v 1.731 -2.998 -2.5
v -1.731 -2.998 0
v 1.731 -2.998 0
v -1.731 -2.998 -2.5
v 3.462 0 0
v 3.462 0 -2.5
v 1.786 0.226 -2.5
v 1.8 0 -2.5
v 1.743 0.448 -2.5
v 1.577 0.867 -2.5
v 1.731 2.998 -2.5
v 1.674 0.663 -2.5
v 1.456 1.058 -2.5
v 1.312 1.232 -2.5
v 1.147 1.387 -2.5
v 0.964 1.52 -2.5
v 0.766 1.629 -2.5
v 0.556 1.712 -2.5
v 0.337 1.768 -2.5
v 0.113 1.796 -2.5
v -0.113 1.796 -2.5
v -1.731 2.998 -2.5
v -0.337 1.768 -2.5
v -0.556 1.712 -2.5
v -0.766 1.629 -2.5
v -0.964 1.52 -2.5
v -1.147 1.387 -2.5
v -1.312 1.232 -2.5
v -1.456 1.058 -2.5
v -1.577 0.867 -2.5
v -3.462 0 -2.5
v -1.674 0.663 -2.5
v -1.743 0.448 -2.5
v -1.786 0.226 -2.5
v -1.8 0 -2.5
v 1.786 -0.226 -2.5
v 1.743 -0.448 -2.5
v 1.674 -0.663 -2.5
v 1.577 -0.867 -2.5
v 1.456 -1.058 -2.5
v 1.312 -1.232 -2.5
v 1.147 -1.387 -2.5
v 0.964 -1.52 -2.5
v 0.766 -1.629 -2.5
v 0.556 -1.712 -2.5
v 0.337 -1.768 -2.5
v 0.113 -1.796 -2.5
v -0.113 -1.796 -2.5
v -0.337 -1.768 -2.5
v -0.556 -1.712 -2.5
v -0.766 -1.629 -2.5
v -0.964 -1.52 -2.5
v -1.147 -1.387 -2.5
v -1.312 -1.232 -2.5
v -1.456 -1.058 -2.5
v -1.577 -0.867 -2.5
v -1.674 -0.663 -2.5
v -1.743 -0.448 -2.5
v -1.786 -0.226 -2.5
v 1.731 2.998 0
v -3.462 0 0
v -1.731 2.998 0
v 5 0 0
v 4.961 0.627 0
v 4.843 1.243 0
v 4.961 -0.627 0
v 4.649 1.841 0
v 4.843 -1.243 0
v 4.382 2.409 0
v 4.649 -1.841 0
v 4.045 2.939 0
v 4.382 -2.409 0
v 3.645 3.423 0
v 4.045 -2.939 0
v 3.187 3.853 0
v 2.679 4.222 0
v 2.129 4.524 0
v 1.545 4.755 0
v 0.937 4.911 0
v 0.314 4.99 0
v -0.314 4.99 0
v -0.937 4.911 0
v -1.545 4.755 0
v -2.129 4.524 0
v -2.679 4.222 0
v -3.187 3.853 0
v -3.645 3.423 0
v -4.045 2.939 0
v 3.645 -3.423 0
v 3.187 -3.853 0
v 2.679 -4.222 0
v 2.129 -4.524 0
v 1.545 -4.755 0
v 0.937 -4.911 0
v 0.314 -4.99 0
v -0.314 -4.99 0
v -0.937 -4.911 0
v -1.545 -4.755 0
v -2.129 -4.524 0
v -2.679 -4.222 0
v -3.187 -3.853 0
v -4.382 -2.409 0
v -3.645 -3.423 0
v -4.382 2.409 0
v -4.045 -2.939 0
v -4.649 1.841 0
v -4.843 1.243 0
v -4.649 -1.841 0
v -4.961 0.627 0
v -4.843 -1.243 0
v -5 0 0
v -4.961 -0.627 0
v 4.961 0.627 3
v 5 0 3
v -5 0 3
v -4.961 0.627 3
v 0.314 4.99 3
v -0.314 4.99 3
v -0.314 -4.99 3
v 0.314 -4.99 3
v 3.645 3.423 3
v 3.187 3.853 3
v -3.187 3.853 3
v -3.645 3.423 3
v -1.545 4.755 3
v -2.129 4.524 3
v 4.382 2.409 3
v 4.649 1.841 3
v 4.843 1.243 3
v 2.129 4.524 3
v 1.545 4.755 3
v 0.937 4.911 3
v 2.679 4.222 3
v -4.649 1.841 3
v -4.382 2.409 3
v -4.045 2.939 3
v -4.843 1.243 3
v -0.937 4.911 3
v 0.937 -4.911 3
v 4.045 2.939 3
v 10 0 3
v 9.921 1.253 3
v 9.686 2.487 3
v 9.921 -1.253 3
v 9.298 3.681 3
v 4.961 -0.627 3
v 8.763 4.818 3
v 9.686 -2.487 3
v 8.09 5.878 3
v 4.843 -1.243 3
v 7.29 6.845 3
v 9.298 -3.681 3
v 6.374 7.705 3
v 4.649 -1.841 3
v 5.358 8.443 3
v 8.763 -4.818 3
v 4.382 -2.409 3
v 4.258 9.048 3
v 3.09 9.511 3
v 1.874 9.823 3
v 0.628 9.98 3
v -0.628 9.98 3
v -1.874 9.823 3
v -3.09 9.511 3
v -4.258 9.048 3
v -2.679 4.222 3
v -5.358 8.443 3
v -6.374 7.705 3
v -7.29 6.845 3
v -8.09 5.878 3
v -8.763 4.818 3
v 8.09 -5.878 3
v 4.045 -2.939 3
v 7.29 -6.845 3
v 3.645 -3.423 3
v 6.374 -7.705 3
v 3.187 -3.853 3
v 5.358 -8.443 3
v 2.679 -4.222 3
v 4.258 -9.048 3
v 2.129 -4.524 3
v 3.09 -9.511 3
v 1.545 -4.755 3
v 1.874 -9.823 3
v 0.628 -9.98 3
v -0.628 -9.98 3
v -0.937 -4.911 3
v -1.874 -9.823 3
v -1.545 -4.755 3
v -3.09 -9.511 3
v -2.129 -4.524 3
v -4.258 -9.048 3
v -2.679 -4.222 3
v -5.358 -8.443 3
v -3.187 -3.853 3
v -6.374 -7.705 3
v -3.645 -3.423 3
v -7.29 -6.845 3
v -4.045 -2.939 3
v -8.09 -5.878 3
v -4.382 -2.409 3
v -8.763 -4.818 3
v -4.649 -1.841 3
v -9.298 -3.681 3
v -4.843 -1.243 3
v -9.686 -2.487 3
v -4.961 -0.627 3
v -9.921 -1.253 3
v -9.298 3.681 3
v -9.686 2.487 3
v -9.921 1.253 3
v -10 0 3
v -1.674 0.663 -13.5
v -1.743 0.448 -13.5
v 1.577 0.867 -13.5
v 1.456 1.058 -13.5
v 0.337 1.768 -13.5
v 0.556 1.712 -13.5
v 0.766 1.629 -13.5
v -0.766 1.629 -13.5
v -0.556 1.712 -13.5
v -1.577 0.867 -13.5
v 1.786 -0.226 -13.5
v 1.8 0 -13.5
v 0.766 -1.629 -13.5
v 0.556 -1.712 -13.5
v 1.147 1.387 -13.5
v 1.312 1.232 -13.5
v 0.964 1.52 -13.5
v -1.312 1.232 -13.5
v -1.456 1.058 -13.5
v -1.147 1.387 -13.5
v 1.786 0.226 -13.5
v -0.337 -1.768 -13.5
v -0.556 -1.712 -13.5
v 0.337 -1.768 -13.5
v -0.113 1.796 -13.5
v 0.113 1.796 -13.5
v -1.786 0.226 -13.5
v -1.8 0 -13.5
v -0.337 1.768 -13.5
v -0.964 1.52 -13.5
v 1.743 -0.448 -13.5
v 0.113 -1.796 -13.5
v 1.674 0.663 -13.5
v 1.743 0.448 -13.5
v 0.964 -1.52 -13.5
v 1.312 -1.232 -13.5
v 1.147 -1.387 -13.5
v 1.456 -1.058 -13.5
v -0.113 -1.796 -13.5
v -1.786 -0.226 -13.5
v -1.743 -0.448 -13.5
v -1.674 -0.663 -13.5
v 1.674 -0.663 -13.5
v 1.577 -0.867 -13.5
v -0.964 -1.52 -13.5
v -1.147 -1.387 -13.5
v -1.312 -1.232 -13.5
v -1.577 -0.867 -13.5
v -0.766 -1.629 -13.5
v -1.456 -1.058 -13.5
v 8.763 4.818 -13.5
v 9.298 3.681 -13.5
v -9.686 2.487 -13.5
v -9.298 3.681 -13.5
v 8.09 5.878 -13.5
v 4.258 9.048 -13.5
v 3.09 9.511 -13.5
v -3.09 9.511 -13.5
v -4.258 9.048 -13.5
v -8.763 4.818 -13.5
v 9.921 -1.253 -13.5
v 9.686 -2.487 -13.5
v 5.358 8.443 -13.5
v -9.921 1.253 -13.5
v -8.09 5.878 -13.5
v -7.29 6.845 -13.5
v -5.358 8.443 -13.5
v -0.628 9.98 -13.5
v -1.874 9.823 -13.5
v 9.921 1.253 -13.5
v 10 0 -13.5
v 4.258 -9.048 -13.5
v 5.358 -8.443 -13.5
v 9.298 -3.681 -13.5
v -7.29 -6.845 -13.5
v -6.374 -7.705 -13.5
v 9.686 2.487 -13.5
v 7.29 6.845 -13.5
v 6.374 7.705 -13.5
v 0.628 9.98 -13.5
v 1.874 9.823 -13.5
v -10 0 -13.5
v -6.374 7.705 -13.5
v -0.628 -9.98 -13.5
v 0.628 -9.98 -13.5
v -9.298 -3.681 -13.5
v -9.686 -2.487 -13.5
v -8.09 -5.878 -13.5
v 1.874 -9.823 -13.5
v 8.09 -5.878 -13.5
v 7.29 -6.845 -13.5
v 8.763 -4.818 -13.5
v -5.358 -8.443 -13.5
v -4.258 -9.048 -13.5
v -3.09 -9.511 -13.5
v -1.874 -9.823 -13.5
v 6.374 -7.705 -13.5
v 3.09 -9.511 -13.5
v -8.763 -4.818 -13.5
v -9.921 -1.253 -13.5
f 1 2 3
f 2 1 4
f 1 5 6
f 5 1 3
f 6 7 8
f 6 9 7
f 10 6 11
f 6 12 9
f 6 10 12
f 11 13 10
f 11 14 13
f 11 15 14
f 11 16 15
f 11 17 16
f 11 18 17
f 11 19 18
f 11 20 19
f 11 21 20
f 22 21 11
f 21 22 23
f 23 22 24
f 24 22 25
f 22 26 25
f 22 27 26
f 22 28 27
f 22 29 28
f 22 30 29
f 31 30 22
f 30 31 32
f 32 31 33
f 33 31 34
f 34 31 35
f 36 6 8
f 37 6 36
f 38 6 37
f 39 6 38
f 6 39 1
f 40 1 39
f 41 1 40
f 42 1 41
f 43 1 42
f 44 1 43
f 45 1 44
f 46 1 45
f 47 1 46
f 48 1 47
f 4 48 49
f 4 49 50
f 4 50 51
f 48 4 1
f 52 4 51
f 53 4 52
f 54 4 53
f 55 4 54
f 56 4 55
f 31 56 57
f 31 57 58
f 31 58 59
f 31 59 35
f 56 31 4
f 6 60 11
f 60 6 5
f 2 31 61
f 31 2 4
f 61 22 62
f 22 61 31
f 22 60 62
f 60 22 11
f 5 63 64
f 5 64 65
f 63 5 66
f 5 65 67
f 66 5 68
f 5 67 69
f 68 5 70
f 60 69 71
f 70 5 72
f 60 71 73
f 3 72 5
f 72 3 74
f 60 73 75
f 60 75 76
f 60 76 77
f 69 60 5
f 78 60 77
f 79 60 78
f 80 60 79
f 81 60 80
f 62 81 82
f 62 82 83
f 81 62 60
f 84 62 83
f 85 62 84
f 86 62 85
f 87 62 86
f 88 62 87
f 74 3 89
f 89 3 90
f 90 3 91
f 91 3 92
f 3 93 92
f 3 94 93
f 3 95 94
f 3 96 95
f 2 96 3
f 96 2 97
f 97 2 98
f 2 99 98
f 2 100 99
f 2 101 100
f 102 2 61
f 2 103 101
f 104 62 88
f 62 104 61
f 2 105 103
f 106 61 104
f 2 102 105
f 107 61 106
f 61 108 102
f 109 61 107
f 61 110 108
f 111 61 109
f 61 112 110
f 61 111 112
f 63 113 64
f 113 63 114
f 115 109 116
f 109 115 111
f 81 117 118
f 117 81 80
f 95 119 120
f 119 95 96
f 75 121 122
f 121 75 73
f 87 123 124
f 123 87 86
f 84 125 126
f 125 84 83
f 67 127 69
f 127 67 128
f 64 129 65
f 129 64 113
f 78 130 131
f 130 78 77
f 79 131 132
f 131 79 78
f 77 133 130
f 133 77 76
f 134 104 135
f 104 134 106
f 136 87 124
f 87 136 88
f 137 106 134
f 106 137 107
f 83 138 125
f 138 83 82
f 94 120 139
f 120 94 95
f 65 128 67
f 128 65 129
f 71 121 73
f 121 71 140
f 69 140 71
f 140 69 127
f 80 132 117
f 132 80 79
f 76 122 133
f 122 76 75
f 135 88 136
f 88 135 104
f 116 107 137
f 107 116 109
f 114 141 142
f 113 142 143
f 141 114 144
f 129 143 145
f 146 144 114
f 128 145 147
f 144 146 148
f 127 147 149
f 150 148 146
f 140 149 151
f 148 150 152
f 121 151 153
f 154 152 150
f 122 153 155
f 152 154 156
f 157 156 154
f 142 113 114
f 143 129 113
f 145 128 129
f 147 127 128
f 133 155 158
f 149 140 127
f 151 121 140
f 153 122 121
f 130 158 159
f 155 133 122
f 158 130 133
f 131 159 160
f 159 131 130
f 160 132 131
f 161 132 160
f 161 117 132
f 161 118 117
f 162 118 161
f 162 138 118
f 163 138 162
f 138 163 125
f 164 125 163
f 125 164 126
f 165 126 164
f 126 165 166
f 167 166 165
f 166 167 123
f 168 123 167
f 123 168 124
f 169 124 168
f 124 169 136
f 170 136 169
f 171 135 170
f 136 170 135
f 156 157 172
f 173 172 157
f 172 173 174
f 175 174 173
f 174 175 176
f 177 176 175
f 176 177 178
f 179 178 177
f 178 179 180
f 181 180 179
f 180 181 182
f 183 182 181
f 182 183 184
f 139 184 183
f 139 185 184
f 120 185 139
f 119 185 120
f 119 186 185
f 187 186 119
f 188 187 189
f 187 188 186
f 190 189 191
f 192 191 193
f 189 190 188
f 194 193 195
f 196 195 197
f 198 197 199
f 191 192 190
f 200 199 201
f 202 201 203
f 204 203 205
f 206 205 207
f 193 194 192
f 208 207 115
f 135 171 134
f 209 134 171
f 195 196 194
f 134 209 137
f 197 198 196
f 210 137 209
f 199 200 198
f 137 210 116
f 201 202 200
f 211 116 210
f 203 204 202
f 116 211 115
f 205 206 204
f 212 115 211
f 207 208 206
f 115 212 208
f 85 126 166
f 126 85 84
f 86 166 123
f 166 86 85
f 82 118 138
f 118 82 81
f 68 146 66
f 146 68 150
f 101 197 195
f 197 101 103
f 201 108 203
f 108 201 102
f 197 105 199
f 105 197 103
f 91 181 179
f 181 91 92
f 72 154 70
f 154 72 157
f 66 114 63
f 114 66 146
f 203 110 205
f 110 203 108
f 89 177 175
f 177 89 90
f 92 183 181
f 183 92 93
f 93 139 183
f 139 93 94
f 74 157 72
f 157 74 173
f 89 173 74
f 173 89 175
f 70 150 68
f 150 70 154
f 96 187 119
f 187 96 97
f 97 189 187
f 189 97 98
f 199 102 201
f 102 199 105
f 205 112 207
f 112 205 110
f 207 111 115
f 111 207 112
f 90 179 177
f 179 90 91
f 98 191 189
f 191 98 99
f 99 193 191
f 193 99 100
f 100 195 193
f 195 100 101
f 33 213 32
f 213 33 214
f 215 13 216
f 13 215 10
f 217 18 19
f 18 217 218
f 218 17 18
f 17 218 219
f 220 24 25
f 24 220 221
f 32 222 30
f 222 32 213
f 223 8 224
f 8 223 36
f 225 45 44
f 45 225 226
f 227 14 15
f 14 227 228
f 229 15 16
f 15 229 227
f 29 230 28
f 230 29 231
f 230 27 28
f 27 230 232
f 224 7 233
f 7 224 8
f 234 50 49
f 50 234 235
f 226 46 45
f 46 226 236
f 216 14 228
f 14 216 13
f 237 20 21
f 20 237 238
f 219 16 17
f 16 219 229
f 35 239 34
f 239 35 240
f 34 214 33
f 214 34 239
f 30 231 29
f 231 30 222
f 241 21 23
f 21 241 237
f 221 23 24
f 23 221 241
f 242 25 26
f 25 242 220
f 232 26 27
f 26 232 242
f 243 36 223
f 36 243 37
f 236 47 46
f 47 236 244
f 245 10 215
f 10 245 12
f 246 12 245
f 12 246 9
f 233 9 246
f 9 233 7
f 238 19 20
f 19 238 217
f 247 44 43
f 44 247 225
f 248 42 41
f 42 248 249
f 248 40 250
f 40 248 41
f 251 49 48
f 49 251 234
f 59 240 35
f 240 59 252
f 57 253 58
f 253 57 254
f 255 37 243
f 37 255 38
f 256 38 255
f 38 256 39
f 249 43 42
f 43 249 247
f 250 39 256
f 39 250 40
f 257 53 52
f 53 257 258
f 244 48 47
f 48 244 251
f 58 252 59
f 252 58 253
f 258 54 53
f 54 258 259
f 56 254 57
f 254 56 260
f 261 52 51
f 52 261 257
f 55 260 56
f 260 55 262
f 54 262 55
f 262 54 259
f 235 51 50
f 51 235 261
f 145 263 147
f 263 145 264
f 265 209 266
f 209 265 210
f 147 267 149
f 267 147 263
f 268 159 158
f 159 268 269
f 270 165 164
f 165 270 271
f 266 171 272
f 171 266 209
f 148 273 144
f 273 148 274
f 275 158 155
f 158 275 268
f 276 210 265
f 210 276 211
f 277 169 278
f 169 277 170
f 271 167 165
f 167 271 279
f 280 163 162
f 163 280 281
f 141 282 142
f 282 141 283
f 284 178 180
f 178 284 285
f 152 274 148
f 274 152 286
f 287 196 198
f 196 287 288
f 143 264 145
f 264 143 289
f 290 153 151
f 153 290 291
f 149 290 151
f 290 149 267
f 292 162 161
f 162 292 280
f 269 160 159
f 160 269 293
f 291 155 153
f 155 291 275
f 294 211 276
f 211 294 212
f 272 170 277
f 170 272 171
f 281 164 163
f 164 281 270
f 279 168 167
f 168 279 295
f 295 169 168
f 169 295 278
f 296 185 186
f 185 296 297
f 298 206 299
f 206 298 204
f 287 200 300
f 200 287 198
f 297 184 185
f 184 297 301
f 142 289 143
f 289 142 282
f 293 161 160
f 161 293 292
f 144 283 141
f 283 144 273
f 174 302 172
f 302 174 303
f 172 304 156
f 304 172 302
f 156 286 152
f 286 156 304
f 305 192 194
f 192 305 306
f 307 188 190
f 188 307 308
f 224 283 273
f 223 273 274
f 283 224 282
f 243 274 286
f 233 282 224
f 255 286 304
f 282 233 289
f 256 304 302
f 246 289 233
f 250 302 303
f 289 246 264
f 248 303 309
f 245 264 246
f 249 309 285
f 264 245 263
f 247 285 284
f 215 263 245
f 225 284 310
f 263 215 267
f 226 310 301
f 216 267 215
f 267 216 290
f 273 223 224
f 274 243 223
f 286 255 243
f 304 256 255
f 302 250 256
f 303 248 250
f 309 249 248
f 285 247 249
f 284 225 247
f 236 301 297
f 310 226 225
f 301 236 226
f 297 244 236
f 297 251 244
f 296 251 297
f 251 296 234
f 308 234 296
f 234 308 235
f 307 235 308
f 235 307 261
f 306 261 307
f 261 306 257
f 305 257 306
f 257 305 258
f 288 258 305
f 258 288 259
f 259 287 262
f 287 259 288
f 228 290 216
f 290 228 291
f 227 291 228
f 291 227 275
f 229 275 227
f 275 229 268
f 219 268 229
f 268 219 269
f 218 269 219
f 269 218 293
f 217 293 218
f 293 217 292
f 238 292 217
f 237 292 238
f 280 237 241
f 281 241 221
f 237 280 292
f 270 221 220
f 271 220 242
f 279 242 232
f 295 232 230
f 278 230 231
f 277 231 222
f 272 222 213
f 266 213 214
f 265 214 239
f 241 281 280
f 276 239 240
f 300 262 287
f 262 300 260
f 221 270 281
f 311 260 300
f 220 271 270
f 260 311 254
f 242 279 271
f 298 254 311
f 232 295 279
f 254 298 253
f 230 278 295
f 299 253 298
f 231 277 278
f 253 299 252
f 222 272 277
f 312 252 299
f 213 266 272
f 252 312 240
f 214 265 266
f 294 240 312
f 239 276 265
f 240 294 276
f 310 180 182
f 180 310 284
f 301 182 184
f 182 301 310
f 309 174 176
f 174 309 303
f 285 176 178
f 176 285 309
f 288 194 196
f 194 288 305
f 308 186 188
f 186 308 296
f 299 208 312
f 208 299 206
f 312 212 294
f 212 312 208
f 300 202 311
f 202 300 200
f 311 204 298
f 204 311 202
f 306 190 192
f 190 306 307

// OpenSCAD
$fn = 50;

difference() {
	union() {
		translate(v = [0, 0, -13.5]) {
			cylinder(h = 16.5, r = 10.0);
		}
	}
	union() {
		translate(v = [0, 0, 0]) {
			rotate(a = [0, 0, 0]) {
				difference() {
					union() {
						translate(v = [0, 0, -2.5]) {
							linear_extrude(height = 2.5) {
								polygon(points = [[3.4619999999999997, 0.0], [1.7310000000000003, 2.9981799479017264], [-1.7309999999999992, 2.9981799479017264], [-3.4619999999999997, 4.2397272186481365e-16], [-1.7310000000000014, -2.998179947901726], [1.7309999999999977, -2.9981799479017277]]);
							}
						}
					}
					union();
				}
			}
		}
		#cylinder(h = 3, r = 5.0);
		#translate(v = [0, 0, -100.0]) {
			cylinder(h = 200, r = 1.8);
		}
	}
}
